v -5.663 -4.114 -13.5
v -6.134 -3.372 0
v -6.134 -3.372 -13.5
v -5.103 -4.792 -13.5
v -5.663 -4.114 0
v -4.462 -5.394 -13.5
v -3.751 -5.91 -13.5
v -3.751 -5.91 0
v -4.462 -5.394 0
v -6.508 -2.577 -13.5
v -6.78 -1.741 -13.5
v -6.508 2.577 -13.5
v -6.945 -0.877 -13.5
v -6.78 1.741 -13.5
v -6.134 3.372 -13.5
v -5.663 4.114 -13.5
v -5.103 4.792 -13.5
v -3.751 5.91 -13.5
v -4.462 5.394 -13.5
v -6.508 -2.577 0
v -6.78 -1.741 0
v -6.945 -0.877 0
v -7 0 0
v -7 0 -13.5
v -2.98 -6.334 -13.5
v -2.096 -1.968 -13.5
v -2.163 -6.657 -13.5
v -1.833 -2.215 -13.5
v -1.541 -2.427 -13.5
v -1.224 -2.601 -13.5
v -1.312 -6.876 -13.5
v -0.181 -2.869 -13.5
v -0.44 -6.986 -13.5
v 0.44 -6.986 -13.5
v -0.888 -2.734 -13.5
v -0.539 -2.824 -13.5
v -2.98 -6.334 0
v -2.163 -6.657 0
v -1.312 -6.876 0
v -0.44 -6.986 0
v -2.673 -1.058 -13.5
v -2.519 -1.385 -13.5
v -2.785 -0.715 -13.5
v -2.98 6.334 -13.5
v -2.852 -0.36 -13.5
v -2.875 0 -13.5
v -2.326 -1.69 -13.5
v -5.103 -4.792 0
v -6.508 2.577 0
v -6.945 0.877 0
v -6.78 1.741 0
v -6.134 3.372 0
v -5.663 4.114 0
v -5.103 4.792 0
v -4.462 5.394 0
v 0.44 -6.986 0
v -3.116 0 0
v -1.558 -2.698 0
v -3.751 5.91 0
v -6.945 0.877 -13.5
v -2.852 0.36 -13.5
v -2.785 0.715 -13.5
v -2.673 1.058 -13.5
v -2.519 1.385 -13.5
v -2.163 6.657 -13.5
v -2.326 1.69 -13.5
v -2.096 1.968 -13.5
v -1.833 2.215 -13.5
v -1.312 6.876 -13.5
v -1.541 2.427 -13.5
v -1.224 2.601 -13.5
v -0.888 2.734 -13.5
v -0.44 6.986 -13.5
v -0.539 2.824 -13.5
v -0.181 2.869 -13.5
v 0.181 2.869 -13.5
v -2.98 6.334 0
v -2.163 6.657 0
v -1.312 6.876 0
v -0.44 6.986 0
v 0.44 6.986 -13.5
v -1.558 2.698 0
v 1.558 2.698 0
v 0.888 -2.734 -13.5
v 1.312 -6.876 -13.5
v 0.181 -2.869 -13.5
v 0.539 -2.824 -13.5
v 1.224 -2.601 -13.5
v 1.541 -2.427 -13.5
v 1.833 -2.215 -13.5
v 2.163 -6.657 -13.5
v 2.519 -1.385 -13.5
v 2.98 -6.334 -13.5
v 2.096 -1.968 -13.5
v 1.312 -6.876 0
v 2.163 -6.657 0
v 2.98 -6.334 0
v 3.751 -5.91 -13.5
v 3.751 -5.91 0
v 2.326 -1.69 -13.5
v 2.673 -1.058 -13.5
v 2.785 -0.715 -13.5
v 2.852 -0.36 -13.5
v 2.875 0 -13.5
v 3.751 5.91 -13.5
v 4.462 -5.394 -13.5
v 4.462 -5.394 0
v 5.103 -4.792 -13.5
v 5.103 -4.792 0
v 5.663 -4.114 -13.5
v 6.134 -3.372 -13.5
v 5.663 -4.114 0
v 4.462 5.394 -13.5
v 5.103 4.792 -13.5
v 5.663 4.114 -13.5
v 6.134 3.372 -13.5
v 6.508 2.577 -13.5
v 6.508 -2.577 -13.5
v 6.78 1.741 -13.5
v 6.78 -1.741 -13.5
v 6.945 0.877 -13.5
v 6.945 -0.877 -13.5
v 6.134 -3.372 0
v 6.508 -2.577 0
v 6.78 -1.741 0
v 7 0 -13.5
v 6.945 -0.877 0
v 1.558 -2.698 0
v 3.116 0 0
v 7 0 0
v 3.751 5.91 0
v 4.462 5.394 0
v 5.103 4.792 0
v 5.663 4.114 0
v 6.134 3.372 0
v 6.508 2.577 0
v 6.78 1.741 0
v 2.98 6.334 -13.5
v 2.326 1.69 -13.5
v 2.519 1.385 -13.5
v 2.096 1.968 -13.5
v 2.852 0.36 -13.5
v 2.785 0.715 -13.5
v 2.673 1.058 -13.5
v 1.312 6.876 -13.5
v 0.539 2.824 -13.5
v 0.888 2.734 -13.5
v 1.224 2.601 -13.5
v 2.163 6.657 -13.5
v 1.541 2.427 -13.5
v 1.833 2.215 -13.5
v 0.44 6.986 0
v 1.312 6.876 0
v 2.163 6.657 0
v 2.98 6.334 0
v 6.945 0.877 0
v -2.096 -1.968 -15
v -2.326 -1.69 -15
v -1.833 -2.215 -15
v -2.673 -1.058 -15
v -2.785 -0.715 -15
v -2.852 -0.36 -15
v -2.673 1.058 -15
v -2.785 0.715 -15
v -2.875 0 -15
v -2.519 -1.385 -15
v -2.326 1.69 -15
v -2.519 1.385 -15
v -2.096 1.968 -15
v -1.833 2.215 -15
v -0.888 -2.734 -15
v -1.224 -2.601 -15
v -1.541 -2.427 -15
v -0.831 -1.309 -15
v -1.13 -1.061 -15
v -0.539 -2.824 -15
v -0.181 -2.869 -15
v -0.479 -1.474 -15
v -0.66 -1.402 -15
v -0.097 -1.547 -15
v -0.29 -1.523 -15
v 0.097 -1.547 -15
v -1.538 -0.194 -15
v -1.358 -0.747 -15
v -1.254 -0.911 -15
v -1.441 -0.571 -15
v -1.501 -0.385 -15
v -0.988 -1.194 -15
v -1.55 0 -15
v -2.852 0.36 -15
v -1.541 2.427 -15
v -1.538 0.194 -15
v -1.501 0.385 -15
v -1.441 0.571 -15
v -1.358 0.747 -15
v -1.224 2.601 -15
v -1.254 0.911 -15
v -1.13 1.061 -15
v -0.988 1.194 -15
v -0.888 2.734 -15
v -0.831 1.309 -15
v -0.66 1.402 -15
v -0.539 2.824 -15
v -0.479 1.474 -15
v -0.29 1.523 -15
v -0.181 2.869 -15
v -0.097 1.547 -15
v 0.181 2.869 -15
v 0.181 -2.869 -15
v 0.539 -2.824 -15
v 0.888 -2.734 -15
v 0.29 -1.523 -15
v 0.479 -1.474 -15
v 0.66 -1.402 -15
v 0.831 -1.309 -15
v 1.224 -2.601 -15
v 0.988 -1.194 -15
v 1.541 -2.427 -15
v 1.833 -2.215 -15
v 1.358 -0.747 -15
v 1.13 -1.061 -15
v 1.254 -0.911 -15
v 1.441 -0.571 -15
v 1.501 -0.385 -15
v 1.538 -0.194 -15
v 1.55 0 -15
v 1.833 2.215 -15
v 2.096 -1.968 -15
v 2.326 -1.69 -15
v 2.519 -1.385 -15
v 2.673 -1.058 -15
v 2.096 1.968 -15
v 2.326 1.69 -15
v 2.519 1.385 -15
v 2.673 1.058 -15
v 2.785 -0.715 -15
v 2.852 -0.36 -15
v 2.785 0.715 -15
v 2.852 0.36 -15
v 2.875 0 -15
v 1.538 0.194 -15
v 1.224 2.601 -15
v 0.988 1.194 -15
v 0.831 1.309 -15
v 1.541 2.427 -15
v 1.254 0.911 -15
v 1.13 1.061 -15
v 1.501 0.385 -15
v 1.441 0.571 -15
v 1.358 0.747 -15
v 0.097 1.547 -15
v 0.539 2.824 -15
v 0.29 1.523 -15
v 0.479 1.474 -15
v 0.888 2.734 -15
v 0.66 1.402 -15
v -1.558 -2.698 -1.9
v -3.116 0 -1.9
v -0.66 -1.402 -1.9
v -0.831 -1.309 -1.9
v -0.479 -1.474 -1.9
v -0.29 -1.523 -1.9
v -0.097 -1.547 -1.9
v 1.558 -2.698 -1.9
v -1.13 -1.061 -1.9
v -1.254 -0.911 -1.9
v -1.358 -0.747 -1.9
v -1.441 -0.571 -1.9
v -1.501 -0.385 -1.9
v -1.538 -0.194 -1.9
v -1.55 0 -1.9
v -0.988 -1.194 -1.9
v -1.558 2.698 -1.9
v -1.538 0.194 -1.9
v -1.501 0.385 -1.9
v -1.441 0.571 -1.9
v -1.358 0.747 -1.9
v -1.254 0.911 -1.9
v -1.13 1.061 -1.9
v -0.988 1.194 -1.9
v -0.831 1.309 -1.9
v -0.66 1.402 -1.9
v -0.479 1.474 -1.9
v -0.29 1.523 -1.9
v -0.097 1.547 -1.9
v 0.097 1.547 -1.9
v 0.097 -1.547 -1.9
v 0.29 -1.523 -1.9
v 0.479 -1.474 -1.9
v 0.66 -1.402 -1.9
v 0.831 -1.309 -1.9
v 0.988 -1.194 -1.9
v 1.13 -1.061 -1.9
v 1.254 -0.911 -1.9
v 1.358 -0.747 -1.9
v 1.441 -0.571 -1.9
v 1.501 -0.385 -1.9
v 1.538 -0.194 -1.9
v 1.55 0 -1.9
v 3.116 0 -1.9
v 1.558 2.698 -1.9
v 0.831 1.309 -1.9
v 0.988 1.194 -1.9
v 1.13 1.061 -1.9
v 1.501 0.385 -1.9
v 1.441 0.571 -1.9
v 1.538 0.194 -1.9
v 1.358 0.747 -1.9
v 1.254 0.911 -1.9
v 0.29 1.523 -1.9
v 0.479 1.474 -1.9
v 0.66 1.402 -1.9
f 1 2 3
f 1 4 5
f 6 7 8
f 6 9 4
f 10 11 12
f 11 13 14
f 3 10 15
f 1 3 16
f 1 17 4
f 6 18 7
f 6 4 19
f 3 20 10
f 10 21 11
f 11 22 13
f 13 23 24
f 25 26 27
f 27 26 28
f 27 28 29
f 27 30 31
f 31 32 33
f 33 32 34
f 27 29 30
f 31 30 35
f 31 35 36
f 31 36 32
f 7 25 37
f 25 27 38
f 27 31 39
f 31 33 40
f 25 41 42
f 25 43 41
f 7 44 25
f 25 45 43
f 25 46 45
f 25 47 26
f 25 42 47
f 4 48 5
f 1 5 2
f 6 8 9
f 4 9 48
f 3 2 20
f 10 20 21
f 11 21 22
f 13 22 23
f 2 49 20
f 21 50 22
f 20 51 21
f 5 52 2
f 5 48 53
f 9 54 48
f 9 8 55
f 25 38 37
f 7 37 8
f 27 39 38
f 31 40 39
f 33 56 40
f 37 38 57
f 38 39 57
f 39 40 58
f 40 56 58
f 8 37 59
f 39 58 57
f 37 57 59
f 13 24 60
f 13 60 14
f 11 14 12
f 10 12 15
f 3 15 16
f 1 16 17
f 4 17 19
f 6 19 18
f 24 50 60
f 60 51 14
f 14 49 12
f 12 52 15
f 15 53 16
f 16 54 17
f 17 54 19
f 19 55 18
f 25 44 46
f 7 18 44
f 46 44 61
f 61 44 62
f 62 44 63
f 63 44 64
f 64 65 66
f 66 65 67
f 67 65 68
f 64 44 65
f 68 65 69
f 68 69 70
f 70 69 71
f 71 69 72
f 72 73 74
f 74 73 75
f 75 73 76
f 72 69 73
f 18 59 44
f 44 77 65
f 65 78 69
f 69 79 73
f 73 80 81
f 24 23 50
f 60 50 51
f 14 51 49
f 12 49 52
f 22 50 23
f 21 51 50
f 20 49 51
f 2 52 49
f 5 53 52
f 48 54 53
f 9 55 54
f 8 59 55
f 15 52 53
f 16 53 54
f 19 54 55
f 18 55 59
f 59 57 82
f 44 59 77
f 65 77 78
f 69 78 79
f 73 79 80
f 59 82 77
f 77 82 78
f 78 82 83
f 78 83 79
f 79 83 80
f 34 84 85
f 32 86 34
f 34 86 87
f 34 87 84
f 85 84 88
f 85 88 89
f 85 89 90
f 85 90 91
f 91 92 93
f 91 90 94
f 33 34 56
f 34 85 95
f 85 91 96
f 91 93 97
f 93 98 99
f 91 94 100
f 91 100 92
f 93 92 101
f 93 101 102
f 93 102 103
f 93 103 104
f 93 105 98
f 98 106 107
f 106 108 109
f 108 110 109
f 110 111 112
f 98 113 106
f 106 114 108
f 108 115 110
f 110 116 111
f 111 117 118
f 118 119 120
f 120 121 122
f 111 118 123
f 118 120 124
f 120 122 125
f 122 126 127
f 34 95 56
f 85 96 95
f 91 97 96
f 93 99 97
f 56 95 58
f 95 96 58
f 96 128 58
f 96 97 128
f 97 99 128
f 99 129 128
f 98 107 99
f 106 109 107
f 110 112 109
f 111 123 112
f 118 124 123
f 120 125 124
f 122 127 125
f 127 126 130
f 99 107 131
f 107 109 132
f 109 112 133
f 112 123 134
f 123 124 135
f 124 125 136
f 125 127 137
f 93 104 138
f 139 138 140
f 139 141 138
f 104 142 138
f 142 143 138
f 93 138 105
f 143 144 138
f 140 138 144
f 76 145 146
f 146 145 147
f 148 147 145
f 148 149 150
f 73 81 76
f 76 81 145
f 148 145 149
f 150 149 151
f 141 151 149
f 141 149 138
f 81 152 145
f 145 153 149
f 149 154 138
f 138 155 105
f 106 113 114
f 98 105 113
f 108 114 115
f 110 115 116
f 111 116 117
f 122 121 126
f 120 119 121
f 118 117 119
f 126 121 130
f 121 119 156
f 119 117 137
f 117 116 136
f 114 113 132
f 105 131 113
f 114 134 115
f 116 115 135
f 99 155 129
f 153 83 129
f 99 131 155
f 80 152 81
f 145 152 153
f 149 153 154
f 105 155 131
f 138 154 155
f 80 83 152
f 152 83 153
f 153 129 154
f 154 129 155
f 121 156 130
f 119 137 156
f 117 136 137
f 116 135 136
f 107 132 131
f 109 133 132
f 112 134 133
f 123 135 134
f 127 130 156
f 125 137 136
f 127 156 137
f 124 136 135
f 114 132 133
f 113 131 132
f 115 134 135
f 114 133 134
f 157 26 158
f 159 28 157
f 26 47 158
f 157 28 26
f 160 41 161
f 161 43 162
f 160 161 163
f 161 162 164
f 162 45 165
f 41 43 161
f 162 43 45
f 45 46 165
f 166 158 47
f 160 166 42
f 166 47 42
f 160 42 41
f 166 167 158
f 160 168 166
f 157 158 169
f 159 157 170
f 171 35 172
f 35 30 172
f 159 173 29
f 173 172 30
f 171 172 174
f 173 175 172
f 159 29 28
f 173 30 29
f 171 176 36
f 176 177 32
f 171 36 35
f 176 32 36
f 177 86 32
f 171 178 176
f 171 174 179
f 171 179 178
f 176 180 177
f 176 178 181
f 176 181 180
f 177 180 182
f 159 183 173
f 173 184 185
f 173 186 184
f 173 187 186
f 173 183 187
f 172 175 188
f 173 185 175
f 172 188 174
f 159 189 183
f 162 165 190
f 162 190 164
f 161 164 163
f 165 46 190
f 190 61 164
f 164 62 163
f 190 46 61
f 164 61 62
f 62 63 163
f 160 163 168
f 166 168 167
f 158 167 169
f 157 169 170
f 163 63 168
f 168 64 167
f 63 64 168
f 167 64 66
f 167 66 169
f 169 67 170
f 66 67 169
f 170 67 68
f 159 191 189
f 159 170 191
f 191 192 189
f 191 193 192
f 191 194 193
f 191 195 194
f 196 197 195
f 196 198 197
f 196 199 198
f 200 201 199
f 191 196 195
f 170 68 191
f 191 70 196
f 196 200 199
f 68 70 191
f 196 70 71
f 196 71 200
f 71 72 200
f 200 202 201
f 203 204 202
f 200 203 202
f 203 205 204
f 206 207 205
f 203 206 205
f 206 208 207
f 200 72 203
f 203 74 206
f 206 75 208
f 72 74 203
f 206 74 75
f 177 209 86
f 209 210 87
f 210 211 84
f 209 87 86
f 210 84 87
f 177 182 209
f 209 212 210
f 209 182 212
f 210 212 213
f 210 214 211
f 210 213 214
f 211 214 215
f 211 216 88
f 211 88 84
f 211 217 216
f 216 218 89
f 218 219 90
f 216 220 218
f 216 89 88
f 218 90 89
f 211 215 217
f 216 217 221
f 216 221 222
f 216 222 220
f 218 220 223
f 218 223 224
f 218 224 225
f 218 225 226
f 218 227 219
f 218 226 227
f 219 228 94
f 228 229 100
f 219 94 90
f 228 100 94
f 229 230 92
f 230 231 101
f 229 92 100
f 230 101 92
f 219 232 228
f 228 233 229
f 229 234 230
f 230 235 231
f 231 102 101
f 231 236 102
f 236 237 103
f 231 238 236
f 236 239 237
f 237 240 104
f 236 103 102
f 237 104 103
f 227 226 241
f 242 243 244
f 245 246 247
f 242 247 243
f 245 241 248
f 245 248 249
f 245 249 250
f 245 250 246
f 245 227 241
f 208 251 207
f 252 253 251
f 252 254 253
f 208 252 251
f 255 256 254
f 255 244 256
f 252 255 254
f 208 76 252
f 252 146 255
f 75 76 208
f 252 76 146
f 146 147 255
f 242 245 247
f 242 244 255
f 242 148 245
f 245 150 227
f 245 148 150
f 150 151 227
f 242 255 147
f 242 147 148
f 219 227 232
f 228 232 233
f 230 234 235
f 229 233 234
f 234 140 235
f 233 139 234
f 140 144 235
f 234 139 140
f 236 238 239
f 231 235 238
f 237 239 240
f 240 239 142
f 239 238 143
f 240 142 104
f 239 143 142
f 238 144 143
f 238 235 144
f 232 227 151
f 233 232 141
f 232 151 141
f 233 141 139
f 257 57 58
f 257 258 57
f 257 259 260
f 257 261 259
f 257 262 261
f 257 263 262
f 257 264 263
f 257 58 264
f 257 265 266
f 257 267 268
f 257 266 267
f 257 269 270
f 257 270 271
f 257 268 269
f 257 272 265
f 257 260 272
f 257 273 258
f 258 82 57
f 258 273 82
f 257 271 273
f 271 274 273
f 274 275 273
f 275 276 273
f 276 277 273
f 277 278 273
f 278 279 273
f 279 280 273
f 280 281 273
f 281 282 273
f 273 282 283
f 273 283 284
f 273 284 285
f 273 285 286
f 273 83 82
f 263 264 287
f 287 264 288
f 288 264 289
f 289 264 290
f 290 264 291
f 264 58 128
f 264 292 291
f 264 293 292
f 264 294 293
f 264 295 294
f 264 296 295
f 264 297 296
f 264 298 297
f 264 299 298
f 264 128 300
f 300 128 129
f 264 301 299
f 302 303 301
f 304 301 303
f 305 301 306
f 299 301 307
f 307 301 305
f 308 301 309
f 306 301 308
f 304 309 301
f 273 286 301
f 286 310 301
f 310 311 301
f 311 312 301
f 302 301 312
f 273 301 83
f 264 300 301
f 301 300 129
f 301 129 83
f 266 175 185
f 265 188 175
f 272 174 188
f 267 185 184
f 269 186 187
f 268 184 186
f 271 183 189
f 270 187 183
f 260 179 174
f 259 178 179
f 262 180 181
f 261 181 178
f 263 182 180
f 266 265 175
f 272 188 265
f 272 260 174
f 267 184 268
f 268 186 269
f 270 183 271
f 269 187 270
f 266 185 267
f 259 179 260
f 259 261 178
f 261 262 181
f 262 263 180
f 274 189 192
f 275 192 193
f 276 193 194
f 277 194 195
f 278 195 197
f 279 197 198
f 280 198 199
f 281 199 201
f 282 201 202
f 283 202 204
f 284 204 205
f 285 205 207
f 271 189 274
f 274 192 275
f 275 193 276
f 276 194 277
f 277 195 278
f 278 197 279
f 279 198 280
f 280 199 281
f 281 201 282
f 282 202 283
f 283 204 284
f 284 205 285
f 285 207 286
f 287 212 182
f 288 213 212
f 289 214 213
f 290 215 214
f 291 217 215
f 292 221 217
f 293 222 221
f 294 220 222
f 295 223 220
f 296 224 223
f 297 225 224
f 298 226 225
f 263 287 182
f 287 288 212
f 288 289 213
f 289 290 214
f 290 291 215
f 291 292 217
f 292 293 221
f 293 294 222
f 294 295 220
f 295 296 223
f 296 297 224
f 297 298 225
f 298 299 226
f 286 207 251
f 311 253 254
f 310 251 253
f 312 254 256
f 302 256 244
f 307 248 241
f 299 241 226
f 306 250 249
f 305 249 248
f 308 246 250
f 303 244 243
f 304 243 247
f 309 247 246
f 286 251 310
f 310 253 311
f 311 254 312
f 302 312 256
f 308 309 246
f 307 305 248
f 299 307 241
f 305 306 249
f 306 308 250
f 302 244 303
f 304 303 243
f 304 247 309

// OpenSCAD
$fn = 50;

difference() {
	union() {
		translate(v = [0, 0, -13.5]) {
			cylinder(h = 13.5, r = 7.0);
		}
		#translate(v = [0, 0, -15.0]) {
			cylinder(h = 15, r = 2.875);
		}
	}
	union() {
		translate(v = [0, 0, 0]) {
			rotate(a = [0, 0, 0]) {
				difference() {
					union() {
						translate(v = [0, 0, -1.9]) {
							linear_extrude(height = 1.9) {
								polygon(points = [[3.1158, 0.0], [1.5579000000000005, 2.698361953111554], [-1.5578999999999994, 2.6983619531115544], [-3.1158, 3.815754496783323e-16], [-1.5579000000000014, -2.6983619531115535], [1.557899999999998, -2.6983619531115552]]);
							}
						}
					}
					union();
				}
			}
		}
		#translate(v = [0, 0, -100.0]) {
			cylinder(h = 200, r = 1.55);
		}
	}
}
